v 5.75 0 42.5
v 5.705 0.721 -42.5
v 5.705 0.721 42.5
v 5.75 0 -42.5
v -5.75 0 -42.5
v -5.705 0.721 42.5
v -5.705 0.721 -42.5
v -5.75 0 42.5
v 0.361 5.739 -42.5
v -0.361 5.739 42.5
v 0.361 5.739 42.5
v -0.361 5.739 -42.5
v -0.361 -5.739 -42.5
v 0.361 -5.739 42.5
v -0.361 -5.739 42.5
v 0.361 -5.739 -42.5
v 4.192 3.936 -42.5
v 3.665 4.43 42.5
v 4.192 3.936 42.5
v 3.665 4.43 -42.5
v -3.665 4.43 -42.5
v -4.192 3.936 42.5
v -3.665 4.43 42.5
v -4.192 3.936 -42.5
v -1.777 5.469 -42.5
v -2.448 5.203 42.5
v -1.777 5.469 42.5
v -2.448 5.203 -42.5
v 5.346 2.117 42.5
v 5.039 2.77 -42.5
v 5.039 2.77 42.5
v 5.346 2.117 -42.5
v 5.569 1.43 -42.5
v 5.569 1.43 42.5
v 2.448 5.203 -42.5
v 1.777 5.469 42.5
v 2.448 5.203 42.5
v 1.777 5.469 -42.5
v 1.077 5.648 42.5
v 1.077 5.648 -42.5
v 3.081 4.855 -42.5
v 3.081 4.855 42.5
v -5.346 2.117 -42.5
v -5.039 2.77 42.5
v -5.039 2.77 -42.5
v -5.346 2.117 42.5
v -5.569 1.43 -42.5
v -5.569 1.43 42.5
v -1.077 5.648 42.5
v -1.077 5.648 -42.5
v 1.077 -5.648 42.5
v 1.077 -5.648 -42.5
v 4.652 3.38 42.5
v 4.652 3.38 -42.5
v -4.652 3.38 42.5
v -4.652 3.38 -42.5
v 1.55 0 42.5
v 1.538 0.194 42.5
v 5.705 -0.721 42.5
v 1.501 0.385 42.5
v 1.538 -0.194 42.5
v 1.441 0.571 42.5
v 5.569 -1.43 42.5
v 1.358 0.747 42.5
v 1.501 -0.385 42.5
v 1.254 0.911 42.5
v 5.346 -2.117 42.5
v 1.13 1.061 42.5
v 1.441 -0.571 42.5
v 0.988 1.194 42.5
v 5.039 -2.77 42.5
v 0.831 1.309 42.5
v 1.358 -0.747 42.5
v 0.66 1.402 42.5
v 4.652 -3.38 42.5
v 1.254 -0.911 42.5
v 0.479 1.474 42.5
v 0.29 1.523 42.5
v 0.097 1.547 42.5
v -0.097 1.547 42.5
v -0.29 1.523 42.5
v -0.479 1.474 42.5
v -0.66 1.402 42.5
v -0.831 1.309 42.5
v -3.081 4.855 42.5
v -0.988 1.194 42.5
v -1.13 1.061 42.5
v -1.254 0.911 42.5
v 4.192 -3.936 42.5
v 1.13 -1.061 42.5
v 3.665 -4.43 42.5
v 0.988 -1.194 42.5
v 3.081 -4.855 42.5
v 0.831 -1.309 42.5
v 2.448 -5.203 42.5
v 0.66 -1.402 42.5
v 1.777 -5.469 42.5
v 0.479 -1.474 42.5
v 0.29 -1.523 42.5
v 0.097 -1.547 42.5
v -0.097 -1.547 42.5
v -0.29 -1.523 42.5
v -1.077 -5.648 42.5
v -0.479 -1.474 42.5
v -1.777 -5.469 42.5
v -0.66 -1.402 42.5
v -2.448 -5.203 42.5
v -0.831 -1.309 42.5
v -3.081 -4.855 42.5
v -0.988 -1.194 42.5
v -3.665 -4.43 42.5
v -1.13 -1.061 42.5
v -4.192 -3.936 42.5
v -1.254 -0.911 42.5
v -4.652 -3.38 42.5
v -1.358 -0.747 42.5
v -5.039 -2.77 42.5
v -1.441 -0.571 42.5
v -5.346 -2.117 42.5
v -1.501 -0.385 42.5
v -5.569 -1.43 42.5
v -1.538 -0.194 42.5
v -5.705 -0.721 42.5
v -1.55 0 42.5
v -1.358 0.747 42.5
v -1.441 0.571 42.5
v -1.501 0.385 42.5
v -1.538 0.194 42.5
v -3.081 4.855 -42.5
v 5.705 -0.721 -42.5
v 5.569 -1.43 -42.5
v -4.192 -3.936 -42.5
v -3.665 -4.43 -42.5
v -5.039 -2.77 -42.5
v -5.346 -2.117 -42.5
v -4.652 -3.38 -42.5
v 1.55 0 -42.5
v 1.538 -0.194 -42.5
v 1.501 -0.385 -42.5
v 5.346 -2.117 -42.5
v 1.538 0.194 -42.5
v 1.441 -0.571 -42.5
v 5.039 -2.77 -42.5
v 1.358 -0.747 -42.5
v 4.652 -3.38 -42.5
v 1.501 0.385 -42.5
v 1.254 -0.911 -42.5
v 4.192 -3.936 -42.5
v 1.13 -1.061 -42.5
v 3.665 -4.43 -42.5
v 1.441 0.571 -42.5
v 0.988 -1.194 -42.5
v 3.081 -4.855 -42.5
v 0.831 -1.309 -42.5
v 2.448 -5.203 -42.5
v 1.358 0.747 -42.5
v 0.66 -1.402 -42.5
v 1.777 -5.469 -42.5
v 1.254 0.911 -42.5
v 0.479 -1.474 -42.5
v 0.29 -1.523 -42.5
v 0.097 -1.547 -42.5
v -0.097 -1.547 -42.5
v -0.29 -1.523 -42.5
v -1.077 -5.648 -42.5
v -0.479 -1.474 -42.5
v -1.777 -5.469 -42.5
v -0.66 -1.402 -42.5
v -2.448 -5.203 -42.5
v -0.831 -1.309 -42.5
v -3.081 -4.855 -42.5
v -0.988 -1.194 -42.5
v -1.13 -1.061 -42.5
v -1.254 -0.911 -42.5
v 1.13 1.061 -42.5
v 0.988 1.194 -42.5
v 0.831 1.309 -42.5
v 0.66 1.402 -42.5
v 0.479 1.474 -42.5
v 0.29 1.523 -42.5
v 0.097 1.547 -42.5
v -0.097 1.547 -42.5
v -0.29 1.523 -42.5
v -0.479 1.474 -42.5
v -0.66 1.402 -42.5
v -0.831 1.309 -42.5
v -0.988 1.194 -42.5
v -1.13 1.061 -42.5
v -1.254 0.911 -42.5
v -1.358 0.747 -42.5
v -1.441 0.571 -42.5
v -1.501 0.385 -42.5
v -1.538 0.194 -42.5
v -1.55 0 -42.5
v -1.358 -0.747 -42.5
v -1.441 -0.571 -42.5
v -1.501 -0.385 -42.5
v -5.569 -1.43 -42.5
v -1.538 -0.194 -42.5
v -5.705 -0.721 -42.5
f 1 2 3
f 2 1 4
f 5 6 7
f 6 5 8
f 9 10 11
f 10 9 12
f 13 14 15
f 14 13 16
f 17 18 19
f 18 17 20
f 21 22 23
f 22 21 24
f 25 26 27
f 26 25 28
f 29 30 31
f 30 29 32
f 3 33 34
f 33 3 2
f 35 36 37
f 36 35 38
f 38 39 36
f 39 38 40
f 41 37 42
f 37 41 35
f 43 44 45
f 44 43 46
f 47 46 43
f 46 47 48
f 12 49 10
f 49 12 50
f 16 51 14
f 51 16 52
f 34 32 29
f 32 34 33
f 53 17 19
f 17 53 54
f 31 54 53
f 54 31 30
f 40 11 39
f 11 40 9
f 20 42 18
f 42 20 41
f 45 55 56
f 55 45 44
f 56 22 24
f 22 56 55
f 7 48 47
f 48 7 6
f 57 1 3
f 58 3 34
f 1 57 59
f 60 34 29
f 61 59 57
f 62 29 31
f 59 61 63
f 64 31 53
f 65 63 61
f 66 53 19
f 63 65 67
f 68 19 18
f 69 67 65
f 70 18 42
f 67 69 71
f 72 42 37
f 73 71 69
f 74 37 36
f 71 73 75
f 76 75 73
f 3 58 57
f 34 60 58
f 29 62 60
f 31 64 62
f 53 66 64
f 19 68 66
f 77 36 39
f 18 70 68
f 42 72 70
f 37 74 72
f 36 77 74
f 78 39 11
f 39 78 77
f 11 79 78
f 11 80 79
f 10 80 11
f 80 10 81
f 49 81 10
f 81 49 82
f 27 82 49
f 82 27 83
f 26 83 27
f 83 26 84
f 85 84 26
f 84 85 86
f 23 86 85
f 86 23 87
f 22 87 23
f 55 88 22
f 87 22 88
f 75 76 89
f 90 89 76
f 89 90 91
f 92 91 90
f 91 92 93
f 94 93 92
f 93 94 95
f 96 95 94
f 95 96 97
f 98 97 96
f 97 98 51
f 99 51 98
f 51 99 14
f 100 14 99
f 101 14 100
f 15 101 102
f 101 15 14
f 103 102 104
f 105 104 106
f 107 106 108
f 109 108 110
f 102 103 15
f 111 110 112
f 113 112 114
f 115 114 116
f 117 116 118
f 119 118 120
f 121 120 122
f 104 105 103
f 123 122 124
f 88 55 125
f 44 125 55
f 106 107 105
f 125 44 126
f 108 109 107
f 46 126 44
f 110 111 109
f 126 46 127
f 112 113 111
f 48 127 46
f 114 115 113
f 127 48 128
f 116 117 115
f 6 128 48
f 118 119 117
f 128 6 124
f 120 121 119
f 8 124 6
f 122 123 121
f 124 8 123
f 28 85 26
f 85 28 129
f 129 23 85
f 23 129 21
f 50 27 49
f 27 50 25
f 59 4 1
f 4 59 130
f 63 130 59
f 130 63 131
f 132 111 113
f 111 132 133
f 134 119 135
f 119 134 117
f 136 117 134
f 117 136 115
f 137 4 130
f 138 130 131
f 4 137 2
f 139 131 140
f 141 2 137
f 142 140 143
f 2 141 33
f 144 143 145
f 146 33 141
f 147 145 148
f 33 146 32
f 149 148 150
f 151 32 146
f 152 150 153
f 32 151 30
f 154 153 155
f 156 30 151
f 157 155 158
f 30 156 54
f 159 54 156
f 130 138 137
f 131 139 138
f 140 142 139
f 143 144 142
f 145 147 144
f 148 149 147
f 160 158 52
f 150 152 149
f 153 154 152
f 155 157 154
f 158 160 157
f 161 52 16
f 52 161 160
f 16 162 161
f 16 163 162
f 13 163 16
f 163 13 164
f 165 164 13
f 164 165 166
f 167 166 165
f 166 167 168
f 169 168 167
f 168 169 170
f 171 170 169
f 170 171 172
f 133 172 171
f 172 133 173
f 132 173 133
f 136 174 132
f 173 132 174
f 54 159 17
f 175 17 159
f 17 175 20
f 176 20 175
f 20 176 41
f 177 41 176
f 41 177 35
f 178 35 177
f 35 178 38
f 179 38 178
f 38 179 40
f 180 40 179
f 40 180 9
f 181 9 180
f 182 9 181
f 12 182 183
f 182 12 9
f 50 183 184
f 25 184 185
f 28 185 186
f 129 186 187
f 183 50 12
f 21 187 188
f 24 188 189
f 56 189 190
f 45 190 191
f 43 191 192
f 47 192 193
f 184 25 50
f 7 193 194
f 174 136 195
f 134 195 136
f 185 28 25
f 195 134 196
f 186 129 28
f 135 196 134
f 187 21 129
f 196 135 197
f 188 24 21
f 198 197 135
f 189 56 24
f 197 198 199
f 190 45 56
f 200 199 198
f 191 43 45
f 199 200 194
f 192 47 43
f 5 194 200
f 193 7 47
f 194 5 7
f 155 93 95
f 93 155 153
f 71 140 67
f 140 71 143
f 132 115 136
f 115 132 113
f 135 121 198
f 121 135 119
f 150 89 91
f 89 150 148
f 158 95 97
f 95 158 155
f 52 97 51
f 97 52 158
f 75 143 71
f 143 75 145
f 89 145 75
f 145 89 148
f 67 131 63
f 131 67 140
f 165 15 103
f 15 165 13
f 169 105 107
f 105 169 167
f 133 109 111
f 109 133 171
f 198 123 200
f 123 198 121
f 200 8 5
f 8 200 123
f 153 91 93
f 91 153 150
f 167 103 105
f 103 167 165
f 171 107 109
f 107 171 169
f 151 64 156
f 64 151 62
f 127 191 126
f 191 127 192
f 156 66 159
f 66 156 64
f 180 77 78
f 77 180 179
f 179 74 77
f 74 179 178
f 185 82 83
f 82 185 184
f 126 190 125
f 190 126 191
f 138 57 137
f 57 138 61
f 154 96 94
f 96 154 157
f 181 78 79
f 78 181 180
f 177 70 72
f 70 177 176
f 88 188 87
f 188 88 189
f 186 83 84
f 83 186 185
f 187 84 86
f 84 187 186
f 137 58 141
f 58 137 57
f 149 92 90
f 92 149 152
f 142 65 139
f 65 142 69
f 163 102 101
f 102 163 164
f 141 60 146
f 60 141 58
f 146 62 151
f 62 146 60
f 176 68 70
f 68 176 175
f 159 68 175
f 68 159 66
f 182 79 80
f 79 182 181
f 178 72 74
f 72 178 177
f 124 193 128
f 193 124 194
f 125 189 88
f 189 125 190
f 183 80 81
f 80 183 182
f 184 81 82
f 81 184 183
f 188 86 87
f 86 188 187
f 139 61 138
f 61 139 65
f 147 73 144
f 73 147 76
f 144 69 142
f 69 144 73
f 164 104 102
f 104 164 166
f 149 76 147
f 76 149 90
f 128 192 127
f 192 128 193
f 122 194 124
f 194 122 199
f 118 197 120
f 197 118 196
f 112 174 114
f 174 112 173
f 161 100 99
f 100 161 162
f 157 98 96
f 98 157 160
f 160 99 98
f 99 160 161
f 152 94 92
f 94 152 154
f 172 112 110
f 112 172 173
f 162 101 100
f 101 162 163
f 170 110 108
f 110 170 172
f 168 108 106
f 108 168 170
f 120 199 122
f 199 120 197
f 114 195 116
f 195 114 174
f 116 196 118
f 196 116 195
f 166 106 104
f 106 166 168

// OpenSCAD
$fn = 50;


difference() {
	union() {
		translate(v = [0, 0, -42.5000000000]) {
			cylinder(h = 85, r = 5.7500000000);
		}
	}
	union() {
		translate(v = [0, 0, -100.0000000000]) {
			cylinder(h = 200, r = 1.5500000000);
		}
	}
}
